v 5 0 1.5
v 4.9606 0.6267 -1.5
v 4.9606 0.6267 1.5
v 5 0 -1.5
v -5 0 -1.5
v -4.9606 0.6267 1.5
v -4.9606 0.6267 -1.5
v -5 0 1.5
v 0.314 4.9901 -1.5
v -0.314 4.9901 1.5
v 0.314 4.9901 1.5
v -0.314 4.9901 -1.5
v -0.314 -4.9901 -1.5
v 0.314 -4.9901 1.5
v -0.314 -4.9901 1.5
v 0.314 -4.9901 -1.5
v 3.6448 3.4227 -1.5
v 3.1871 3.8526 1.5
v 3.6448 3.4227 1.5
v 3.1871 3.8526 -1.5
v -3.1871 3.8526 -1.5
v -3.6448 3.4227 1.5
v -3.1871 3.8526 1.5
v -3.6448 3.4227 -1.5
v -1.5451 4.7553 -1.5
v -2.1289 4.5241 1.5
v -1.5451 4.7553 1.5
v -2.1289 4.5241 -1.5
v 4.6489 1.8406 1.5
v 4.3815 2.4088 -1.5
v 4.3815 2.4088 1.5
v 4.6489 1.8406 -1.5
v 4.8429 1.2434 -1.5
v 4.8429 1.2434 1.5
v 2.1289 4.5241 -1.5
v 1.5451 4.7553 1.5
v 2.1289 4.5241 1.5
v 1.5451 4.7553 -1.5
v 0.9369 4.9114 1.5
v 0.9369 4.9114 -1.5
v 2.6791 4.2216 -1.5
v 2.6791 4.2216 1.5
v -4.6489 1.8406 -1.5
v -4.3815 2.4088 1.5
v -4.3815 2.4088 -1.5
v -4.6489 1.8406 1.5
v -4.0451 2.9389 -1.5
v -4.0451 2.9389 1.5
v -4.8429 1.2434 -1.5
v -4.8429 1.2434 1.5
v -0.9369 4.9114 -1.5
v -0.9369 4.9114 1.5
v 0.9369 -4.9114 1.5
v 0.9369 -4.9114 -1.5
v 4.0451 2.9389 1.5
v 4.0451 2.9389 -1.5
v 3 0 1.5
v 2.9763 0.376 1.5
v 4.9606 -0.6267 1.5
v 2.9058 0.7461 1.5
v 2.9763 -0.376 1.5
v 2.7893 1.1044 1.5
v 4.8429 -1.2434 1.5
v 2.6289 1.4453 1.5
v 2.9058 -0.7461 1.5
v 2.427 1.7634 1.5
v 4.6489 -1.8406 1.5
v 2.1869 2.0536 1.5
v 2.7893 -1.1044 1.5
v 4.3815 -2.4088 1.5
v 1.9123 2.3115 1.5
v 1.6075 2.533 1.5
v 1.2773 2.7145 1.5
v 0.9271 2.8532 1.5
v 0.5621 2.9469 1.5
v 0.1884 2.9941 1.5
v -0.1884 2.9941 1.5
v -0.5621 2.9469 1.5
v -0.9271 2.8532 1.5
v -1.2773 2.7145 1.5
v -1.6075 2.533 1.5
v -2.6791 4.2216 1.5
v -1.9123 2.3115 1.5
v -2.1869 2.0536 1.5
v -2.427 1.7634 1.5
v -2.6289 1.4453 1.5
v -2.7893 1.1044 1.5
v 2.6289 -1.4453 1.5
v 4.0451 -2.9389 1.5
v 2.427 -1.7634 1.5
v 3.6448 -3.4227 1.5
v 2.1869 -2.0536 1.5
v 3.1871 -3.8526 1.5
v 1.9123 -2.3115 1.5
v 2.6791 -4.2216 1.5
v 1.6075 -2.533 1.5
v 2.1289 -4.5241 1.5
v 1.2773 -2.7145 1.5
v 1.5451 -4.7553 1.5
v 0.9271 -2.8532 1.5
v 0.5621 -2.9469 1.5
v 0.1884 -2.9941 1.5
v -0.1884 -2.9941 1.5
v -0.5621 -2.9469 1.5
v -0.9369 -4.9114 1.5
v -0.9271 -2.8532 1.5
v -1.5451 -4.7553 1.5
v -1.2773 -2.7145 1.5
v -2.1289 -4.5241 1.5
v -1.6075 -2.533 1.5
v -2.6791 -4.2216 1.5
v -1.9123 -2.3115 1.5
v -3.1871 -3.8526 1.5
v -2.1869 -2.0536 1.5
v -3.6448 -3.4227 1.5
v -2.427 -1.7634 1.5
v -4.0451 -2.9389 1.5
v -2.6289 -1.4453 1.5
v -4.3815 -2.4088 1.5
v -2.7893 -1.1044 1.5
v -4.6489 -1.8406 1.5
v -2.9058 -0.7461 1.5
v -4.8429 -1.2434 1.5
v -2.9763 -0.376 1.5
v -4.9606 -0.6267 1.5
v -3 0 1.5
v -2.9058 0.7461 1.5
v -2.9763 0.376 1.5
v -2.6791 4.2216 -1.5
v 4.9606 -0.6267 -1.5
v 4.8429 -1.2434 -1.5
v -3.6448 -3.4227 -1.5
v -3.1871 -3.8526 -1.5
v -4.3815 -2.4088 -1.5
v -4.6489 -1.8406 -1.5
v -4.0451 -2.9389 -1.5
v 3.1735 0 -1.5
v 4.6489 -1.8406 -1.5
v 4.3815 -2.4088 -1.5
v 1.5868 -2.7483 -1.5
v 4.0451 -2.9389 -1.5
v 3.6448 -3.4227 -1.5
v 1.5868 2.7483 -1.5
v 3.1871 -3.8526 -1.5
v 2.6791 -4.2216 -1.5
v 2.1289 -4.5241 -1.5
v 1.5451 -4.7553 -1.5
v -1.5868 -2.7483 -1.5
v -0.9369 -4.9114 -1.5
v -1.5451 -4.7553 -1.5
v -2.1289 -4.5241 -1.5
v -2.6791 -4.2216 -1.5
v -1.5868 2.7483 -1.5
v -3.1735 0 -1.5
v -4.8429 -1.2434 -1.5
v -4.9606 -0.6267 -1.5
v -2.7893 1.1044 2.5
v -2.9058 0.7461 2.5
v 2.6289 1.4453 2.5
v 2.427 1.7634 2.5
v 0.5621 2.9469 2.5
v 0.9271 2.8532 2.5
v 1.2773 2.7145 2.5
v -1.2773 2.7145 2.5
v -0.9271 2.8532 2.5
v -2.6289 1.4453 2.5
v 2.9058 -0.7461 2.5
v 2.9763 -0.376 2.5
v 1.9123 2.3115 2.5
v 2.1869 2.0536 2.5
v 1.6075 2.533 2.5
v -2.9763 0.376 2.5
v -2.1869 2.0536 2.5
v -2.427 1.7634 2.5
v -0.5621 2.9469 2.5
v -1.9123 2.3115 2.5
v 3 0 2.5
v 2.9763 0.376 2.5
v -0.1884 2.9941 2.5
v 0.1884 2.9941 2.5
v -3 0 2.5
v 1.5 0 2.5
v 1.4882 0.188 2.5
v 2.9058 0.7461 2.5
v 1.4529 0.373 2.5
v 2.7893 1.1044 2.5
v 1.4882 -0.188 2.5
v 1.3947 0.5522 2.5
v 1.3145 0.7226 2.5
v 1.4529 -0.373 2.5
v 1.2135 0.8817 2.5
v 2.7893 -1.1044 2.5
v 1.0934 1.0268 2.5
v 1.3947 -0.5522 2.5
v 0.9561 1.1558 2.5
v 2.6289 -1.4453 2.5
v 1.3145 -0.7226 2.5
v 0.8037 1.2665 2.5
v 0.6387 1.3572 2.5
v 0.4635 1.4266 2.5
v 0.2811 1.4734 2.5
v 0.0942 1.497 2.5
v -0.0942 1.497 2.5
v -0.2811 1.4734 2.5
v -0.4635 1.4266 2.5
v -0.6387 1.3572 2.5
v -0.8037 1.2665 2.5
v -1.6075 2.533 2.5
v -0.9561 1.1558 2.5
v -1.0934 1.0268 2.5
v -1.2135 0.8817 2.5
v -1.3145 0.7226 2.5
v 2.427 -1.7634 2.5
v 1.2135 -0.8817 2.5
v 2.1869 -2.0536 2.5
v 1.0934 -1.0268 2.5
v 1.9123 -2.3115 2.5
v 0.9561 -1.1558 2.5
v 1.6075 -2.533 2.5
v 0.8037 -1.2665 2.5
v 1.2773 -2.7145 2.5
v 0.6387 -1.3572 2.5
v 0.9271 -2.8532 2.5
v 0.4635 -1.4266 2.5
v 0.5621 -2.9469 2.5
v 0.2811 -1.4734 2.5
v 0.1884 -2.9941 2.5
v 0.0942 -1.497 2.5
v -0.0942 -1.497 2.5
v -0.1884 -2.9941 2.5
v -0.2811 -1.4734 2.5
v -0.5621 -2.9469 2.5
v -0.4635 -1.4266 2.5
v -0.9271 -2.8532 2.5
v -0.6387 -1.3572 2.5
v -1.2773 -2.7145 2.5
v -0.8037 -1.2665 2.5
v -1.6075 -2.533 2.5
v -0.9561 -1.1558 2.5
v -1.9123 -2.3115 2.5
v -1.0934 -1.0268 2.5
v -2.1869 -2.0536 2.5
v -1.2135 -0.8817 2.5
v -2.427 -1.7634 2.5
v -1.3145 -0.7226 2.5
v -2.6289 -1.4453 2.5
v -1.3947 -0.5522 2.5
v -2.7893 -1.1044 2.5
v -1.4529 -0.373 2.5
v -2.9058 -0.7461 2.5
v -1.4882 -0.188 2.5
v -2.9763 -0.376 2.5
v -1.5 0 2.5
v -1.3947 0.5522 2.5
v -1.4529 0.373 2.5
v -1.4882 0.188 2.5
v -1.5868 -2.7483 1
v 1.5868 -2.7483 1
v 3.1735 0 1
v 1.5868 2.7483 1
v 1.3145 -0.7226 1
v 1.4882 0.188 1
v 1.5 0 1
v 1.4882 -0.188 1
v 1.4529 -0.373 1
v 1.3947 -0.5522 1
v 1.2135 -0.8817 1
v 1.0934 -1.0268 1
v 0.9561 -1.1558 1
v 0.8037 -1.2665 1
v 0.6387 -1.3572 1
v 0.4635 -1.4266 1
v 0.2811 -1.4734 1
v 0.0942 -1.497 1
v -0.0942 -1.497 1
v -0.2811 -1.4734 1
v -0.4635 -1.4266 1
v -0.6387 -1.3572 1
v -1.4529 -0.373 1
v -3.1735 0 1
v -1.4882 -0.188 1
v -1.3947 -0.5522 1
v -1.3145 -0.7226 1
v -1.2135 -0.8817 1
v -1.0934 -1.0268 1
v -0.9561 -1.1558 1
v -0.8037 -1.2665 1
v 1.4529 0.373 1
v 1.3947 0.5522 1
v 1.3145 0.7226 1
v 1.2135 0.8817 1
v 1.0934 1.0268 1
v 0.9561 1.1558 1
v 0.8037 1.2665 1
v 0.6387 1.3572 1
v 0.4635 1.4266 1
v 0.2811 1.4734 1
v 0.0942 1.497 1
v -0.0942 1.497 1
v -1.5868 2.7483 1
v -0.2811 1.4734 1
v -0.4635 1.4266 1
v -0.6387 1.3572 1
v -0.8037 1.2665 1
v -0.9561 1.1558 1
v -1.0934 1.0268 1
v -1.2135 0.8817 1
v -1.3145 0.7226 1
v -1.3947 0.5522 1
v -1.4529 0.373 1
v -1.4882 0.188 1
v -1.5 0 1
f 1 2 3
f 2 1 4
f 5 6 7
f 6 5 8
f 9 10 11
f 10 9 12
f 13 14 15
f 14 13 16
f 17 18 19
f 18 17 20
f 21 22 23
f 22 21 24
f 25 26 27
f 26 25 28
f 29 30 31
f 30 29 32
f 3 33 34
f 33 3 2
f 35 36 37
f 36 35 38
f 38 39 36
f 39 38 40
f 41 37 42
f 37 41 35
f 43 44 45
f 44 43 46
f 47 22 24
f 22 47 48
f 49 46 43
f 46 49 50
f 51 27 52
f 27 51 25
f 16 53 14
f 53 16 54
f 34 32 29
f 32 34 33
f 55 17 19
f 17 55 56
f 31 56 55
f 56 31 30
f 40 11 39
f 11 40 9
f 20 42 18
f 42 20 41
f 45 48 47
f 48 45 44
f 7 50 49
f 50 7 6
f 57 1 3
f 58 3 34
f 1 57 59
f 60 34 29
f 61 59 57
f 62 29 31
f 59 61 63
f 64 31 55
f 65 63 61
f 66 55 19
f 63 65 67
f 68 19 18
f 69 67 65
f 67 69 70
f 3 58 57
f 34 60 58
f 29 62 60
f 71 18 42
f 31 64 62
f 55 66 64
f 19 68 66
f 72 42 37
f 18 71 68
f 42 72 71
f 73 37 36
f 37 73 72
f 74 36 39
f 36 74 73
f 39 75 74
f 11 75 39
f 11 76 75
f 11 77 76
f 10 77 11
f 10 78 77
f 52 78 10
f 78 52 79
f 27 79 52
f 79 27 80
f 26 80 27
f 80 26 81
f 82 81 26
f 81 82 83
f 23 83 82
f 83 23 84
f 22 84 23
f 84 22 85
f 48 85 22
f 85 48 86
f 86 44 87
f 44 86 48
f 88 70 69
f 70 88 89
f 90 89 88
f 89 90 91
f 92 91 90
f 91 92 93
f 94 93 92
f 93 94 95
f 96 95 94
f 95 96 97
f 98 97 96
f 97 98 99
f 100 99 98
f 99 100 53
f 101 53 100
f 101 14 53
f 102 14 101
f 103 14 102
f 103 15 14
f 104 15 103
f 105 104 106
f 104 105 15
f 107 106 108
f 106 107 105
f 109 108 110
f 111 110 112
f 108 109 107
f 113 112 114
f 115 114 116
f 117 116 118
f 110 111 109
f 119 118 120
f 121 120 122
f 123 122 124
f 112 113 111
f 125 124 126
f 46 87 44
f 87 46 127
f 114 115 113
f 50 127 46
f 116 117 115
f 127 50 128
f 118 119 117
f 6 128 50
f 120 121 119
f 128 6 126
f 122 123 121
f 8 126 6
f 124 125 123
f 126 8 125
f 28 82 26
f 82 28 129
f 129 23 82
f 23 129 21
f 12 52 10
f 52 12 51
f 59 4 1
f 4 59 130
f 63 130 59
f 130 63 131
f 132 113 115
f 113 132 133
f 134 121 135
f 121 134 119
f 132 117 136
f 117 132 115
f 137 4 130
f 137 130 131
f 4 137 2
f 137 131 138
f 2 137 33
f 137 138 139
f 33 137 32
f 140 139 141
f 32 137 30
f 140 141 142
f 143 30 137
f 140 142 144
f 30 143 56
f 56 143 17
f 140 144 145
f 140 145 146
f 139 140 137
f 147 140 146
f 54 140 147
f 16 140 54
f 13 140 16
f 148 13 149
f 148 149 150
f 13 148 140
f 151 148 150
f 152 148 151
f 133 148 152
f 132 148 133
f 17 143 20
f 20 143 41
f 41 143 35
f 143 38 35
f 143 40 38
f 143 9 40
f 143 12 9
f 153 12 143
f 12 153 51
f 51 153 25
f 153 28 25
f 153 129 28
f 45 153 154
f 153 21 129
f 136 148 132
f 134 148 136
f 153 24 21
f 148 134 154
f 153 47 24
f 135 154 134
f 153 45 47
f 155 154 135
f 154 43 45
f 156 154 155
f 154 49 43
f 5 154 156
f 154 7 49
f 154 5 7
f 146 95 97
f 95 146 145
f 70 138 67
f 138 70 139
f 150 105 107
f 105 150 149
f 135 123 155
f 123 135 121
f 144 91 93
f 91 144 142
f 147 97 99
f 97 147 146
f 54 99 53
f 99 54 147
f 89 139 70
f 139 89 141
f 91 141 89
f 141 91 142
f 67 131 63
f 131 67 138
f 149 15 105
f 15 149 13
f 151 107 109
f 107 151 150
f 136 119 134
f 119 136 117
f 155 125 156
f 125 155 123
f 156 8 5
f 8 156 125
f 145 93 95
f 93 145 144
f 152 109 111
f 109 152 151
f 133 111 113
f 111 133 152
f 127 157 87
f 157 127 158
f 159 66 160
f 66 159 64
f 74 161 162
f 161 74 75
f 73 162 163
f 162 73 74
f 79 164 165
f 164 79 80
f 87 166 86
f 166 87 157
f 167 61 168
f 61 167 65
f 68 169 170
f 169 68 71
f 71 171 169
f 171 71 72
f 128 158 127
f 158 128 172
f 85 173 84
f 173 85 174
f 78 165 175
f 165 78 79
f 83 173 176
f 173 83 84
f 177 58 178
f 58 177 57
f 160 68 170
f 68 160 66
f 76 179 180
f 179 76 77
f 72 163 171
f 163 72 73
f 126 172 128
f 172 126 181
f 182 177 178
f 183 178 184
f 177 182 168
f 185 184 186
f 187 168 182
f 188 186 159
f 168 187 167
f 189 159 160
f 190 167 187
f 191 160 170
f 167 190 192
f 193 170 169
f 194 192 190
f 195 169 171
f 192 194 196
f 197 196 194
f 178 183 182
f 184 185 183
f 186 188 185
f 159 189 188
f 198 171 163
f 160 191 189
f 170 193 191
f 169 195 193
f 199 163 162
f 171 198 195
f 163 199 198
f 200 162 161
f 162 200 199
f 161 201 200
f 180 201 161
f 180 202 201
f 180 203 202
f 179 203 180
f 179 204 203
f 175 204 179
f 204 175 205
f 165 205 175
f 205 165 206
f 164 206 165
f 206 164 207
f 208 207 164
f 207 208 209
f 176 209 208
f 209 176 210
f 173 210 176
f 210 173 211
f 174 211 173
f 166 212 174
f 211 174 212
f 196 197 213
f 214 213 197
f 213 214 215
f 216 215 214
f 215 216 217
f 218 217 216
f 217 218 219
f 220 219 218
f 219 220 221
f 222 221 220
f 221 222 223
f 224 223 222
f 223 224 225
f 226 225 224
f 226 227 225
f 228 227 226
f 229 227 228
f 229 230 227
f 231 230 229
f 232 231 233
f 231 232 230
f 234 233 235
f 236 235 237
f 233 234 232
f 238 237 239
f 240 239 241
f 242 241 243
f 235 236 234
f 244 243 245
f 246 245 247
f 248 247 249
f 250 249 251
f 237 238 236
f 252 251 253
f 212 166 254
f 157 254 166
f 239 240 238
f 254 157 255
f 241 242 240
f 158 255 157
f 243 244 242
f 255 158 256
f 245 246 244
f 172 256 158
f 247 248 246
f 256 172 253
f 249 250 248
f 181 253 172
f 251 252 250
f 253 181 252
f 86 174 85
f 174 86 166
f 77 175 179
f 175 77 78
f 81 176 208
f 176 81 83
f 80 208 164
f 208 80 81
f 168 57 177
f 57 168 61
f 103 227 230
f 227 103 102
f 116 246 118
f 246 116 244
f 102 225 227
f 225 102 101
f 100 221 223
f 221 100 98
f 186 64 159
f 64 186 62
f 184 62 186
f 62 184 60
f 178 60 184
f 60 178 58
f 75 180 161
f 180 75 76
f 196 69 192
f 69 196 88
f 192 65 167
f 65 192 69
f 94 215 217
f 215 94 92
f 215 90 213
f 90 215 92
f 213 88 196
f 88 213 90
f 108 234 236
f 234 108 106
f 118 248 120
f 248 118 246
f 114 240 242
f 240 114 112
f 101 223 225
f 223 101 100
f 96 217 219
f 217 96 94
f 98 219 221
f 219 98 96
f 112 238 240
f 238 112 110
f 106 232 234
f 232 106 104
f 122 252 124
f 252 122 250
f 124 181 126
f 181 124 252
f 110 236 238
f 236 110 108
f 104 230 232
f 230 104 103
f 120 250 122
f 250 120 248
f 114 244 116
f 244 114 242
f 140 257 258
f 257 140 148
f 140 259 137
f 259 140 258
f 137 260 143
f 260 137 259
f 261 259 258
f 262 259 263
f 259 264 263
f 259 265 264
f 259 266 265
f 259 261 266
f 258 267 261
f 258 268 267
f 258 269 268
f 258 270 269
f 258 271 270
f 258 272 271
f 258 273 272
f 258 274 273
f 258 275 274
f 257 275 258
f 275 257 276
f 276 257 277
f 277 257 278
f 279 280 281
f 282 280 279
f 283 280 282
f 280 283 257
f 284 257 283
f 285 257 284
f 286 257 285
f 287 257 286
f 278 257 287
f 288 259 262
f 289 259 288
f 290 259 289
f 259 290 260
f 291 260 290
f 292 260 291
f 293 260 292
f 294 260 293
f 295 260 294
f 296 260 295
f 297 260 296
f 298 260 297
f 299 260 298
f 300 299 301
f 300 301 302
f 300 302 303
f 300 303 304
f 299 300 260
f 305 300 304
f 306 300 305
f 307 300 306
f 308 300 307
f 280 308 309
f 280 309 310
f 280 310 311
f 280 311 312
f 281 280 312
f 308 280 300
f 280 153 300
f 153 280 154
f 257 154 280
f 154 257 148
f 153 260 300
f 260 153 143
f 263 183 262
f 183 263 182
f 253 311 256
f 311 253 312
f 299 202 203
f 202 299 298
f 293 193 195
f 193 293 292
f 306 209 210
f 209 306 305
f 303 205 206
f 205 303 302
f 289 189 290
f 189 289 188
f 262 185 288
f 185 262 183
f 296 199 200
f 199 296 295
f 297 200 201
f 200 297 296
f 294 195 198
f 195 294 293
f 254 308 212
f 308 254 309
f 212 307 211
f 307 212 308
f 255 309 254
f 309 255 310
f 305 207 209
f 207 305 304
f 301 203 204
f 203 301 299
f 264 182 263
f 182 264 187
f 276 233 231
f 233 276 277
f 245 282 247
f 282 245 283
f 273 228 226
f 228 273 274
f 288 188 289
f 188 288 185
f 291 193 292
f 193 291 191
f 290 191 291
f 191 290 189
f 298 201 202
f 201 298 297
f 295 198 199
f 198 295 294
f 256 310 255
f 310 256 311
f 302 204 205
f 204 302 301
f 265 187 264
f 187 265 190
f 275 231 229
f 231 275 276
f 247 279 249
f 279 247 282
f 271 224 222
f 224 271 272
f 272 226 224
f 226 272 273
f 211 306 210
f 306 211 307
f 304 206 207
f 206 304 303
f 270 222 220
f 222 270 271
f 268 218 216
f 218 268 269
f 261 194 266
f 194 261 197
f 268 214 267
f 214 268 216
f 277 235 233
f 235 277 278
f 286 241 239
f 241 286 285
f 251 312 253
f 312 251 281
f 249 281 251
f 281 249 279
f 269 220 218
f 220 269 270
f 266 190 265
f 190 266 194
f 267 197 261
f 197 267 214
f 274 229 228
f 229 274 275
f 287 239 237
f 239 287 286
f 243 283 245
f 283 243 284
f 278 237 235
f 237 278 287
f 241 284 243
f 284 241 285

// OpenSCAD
$fn = 50;


difference() {
	union() {
		translate(v = [0, 0, -1.5000000000]) {
			cylinder(h = 3, r = 5.0000000000);
		}
		translate(v = [0, 0, -1.5000000000]) {
			cylinder(h = 4, r = 3.0000000000);
		}
	}
	union() {
		translate(v = [0, 0, -1.5000000000]) {
			rotate(a = [0, 0, 0]) {
				difference() {
					union() {
						linear_extrude(height = 2.5000000000) {
							polygon(points = [[3.1735000000, 0.0000000000], [1.5867500000, 2.7483316189], [-1.5867500000, 2.7483316189], [-3.1735000000, 0.0000000000], [-1.5867500000, -2.7483316189], [1.5867500000, -2.7483316189]]);
						}
					}
					union();
				}
			}
		}
		translate(v = [0, 0, -50.0000000000]) {
			cylinder(h = 100, r = 1.5000000000);
		}
	}
}
